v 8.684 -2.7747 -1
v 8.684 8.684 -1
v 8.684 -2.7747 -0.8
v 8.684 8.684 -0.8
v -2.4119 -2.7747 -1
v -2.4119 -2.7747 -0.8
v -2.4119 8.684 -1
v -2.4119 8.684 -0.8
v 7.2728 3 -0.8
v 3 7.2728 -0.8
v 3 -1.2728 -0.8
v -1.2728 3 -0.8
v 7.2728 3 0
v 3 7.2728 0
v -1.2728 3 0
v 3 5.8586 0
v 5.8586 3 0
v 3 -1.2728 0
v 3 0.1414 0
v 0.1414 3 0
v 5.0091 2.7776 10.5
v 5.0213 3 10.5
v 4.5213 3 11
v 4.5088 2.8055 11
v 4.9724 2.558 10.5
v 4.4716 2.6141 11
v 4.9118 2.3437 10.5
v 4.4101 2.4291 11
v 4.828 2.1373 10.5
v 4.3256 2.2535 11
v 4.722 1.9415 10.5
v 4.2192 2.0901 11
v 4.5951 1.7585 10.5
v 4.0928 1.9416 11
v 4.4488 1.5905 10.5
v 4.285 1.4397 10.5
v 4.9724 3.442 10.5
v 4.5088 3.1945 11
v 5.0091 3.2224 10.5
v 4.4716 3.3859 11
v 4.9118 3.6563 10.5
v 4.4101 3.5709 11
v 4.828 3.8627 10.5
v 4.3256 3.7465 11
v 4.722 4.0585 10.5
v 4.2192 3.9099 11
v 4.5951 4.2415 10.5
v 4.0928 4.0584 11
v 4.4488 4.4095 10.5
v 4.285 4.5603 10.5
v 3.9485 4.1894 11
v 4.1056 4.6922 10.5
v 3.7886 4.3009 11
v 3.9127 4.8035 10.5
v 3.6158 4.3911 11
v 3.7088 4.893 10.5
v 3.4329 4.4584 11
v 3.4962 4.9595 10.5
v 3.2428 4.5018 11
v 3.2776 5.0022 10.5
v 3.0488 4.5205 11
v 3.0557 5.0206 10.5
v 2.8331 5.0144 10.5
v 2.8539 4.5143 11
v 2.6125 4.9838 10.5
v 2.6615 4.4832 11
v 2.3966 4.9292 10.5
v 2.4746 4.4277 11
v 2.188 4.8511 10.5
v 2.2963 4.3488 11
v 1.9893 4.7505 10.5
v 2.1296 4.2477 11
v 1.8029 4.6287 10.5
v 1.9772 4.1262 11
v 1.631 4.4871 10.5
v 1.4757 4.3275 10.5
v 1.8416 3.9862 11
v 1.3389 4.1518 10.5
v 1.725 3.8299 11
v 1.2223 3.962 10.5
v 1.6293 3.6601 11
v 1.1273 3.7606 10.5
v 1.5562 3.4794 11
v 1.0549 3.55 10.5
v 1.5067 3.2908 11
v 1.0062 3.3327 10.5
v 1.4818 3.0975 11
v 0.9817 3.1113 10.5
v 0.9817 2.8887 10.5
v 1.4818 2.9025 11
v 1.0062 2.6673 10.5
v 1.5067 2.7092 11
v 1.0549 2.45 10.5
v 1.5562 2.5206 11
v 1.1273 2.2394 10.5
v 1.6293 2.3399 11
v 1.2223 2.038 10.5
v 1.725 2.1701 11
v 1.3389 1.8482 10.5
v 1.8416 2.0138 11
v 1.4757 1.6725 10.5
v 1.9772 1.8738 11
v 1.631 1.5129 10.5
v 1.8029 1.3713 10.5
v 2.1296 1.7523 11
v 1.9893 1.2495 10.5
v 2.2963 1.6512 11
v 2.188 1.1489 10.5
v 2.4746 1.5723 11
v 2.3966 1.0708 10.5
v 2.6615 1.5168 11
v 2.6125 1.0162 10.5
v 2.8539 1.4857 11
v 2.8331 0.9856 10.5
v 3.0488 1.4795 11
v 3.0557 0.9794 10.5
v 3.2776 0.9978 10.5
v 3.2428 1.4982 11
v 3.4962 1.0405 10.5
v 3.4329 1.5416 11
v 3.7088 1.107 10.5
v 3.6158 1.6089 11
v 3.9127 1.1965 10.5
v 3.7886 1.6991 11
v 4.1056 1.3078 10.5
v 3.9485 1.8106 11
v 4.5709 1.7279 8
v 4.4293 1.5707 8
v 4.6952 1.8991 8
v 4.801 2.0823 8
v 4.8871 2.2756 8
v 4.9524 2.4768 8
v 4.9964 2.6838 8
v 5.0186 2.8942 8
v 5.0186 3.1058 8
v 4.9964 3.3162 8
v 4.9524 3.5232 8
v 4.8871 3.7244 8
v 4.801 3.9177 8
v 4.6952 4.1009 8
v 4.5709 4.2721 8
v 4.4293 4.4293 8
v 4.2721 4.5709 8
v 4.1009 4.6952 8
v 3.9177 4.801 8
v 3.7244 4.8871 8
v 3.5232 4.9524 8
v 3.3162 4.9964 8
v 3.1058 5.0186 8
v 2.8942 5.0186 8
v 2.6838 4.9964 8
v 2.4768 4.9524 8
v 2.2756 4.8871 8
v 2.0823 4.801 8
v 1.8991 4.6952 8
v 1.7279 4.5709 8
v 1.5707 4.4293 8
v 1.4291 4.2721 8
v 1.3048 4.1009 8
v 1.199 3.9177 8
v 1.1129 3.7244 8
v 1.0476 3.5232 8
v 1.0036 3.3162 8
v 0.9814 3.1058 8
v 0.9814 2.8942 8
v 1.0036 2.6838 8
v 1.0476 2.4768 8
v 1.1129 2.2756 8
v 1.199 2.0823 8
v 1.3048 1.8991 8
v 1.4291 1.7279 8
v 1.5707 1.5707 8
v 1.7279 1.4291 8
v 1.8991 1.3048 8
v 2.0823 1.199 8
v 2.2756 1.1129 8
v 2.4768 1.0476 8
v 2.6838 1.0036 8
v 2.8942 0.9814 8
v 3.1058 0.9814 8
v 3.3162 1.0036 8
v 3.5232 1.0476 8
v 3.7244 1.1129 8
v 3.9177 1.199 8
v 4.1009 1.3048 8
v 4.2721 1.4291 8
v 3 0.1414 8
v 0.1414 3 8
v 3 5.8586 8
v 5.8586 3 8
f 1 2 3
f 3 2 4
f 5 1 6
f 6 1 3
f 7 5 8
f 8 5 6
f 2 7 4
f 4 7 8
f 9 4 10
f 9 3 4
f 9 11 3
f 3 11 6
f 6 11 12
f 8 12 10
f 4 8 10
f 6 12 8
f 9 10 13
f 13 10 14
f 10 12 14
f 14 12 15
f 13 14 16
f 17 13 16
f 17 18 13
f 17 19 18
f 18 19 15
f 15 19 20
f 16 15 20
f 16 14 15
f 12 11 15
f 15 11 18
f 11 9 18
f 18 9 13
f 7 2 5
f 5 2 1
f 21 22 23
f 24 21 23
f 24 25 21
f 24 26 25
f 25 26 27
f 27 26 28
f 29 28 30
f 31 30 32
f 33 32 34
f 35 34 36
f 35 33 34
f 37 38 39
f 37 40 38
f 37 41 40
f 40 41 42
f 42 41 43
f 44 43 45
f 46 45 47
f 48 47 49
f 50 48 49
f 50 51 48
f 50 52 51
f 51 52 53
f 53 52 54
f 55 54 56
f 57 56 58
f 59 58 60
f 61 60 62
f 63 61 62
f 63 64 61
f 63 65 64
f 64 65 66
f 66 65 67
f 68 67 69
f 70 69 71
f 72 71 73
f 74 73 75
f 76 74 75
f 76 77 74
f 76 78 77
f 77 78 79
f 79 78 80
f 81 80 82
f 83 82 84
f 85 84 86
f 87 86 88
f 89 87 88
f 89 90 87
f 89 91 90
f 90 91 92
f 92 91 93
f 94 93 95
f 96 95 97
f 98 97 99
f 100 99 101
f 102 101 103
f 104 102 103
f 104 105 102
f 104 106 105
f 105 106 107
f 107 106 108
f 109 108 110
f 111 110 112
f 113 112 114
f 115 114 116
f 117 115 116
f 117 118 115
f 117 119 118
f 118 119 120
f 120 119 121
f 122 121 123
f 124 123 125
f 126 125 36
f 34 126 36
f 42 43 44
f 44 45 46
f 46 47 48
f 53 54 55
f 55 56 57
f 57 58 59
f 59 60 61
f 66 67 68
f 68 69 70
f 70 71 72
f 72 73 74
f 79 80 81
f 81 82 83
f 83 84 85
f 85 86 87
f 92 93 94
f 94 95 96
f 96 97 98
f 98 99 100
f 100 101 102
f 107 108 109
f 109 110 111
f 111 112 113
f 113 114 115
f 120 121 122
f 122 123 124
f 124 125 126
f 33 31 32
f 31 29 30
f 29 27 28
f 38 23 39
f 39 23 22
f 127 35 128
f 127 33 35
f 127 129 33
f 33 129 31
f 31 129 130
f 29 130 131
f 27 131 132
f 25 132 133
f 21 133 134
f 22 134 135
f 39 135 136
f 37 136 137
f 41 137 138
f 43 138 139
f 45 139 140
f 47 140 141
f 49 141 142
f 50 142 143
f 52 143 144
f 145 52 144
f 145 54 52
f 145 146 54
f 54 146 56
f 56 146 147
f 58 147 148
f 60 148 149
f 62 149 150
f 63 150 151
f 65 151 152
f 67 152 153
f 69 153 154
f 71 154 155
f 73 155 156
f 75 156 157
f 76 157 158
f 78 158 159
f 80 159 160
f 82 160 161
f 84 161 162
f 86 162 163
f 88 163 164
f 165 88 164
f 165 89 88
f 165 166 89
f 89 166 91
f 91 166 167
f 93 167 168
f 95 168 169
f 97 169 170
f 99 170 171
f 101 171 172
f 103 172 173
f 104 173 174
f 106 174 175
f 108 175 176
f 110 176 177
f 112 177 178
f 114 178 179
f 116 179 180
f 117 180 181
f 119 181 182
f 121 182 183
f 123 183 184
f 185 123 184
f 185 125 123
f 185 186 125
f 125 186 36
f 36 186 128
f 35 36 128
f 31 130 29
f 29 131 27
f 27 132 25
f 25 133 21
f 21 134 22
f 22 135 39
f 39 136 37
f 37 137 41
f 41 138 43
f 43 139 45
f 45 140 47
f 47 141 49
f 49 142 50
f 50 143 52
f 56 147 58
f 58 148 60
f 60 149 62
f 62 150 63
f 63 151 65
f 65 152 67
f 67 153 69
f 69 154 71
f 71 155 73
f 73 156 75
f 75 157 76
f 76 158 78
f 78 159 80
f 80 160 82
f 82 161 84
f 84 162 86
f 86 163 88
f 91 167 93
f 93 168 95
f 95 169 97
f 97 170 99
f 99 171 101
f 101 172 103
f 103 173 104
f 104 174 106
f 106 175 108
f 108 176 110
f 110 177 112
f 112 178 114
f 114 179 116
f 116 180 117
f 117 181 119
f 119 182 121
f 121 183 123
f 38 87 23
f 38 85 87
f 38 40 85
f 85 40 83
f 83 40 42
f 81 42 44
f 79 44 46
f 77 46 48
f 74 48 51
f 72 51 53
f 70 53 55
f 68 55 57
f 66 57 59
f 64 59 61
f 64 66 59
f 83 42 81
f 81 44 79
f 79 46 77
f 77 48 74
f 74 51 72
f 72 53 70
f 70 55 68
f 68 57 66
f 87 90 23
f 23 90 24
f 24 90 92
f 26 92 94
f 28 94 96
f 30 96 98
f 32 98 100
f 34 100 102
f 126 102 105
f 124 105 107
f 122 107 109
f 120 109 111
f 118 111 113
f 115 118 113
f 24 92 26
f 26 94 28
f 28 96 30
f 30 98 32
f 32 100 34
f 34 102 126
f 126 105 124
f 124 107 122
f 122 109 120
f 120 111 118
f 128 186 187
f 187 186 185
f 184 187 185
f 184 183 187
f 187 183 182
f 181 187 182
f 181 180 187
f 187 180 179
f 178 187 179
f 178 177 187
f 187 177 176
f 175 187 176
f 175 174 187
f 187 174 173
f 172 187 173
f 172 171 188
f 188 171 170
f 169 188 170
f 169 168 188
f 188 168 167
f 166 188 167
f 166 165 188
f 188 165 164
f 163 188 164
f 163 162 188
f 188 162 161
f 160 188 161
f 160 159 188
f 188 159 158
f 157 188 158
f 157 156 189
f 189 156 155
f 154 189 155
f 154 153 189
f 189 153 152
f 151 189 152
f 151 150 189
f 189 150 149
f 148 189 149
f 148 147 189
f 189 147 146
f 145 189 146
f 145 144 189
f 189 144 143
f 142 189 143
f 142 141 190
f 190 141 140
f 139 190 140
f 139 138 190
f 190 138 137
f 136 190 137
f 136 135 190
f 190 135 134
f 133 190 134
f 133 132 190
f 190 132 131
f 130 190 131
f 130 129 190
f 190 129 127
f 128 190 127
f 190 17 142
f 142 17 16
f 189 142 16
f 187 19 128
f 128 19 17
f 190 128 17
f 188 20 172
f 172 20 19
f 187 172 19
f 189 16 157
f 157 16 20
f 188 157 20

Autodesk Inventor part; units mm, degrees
ref_plane "YZ Plane" through (0, 0, 0) normal (1, 0, 0) x (0, 1, 0)
ref_plane "XZ Plane" through (0, 0, 0) normal (0, 1, 0) x (-1, 0, 0)
ref_plane "XY Plane" through (0, 0, 0) normal (0, 0, 1) x (1, 0, 0)
sketch "Sketch3" plane through (0, 0, 0) normal (0, 0, 1) x (1, 0, 0)
  line L0 (0, 0) -> (6, 0) construction
  line L1 (6, 0) -> (6, 6) construction
  line L2 (6, 6) -> (0, 6) construction
  line L3 (0, 6) -> (0, 0) construction
  line L4 (0, 0) -> (6, 6) construction
  line L5 (0, 6) -> (6, 0) construction
  line L6 (3, 6) -> (3, 0) construction
  line L7 (6, 3) -> (0, 3) construction
  line L8 (3, 6) -> (6, 3) construction
  line L9 (6, 3) -> (3, 0) construction
  line L10 (3, 0) -> (0, 3) construction
  line L11 (0, 3) -> (3, 6) construction
  line L12 (3, 5.8586) -> (0.1414, 3)
  line L13 (0.1414, 3) -> (3, 0.1414)
  line L14 (3, 0.1414) -> (5.8586, 3)
  line L15 (3, 5.8586) -> (5.8586, 3)
  dimension "d9" = 6
  dimension "d10" = 6
  dimension "d11" = 0.1
  dimension "d12" = 0.1
extrude "Extrusion3" add sketch "Sketch3" along normal blind 8
sketch "Sketch4" plane through (0, 0, 8) normal (0, 0, 1) x (1, 0, 0)
  line L0 (0.1414, 3) -> (5.8586, 3) construction
  line L1 (3, 0.1414) -> (3, 5.8586) construction
  circle A0 centre (3, 3) radius 2.0213
  point P0 (0, 0)
extrude "Extrusion4" add sketch "Sketch4" along normal blind 3
chamfer "Chamfer2" distance 0.5 angle 45 1 edges at (0.9787, 3, 11)
sketch "Sketch5" plane through (0, 0, 0) normal (0, 0, -1) x (-1, 0, 0)
  line L0 (-3, 5.8586) -> (-0.1414, 3) projected
  line L1 (-5.8586, 3) -> (-3, 5.8586) projected
  line L2 (-3, 0.1414) -> (-5.8586, 3) projected
  line L3 (-0.1414, 3) -> (-3, 0.1414) projected
  line L4 (1.2728, 3) -> (-3, 7.2728)
  line L5 (-3, 7.2728) -> (-7.2728, 3)
  line L6 (-7.2728, 3) -> (-3, -1.2728)
  line L7 (-3, -1.2728) -> (1.2728, 3)
  point P0 (0, 0)
  dimension "d20" = 1
extrude "Extrusion5" add sketch "Sketch5" along normal blind 1 contours L0 L3 L2 L1 | L7 L6 L5 L4
sketch "Sketch6" plane through (0, 0, -1) normal (0, 0, -1) x (-1, 0, 0)
  line L0 (1.2728, 3) -> (-3, 7.2728) projected
  line L1 (-3, 7.2728) -> (-7.2728, 3) projected
  line L2 (-7.2728, 3) -> (-3, -1.2728) projected
  line L3 (-3, -1.2728) -> (1.2728, 3) projected
  line L4 (-8.684, 8.684) -> (2.4119, 8.684)
  line L5 (2.4119, 8.684) -> (2.4119, -2.7747)
  line L6 (2.4119, -2.7747) -> (-8.684, -2.7747)
  line L7 (-8.684, -2.7747) -> (-8.684, 8.684)
  point P0 (0, 0)
extrude "printing support" add sketch "Sketch6" against normal blind 0.2
equation "\"d12\" = d11"
properties part number "BUTTON"
